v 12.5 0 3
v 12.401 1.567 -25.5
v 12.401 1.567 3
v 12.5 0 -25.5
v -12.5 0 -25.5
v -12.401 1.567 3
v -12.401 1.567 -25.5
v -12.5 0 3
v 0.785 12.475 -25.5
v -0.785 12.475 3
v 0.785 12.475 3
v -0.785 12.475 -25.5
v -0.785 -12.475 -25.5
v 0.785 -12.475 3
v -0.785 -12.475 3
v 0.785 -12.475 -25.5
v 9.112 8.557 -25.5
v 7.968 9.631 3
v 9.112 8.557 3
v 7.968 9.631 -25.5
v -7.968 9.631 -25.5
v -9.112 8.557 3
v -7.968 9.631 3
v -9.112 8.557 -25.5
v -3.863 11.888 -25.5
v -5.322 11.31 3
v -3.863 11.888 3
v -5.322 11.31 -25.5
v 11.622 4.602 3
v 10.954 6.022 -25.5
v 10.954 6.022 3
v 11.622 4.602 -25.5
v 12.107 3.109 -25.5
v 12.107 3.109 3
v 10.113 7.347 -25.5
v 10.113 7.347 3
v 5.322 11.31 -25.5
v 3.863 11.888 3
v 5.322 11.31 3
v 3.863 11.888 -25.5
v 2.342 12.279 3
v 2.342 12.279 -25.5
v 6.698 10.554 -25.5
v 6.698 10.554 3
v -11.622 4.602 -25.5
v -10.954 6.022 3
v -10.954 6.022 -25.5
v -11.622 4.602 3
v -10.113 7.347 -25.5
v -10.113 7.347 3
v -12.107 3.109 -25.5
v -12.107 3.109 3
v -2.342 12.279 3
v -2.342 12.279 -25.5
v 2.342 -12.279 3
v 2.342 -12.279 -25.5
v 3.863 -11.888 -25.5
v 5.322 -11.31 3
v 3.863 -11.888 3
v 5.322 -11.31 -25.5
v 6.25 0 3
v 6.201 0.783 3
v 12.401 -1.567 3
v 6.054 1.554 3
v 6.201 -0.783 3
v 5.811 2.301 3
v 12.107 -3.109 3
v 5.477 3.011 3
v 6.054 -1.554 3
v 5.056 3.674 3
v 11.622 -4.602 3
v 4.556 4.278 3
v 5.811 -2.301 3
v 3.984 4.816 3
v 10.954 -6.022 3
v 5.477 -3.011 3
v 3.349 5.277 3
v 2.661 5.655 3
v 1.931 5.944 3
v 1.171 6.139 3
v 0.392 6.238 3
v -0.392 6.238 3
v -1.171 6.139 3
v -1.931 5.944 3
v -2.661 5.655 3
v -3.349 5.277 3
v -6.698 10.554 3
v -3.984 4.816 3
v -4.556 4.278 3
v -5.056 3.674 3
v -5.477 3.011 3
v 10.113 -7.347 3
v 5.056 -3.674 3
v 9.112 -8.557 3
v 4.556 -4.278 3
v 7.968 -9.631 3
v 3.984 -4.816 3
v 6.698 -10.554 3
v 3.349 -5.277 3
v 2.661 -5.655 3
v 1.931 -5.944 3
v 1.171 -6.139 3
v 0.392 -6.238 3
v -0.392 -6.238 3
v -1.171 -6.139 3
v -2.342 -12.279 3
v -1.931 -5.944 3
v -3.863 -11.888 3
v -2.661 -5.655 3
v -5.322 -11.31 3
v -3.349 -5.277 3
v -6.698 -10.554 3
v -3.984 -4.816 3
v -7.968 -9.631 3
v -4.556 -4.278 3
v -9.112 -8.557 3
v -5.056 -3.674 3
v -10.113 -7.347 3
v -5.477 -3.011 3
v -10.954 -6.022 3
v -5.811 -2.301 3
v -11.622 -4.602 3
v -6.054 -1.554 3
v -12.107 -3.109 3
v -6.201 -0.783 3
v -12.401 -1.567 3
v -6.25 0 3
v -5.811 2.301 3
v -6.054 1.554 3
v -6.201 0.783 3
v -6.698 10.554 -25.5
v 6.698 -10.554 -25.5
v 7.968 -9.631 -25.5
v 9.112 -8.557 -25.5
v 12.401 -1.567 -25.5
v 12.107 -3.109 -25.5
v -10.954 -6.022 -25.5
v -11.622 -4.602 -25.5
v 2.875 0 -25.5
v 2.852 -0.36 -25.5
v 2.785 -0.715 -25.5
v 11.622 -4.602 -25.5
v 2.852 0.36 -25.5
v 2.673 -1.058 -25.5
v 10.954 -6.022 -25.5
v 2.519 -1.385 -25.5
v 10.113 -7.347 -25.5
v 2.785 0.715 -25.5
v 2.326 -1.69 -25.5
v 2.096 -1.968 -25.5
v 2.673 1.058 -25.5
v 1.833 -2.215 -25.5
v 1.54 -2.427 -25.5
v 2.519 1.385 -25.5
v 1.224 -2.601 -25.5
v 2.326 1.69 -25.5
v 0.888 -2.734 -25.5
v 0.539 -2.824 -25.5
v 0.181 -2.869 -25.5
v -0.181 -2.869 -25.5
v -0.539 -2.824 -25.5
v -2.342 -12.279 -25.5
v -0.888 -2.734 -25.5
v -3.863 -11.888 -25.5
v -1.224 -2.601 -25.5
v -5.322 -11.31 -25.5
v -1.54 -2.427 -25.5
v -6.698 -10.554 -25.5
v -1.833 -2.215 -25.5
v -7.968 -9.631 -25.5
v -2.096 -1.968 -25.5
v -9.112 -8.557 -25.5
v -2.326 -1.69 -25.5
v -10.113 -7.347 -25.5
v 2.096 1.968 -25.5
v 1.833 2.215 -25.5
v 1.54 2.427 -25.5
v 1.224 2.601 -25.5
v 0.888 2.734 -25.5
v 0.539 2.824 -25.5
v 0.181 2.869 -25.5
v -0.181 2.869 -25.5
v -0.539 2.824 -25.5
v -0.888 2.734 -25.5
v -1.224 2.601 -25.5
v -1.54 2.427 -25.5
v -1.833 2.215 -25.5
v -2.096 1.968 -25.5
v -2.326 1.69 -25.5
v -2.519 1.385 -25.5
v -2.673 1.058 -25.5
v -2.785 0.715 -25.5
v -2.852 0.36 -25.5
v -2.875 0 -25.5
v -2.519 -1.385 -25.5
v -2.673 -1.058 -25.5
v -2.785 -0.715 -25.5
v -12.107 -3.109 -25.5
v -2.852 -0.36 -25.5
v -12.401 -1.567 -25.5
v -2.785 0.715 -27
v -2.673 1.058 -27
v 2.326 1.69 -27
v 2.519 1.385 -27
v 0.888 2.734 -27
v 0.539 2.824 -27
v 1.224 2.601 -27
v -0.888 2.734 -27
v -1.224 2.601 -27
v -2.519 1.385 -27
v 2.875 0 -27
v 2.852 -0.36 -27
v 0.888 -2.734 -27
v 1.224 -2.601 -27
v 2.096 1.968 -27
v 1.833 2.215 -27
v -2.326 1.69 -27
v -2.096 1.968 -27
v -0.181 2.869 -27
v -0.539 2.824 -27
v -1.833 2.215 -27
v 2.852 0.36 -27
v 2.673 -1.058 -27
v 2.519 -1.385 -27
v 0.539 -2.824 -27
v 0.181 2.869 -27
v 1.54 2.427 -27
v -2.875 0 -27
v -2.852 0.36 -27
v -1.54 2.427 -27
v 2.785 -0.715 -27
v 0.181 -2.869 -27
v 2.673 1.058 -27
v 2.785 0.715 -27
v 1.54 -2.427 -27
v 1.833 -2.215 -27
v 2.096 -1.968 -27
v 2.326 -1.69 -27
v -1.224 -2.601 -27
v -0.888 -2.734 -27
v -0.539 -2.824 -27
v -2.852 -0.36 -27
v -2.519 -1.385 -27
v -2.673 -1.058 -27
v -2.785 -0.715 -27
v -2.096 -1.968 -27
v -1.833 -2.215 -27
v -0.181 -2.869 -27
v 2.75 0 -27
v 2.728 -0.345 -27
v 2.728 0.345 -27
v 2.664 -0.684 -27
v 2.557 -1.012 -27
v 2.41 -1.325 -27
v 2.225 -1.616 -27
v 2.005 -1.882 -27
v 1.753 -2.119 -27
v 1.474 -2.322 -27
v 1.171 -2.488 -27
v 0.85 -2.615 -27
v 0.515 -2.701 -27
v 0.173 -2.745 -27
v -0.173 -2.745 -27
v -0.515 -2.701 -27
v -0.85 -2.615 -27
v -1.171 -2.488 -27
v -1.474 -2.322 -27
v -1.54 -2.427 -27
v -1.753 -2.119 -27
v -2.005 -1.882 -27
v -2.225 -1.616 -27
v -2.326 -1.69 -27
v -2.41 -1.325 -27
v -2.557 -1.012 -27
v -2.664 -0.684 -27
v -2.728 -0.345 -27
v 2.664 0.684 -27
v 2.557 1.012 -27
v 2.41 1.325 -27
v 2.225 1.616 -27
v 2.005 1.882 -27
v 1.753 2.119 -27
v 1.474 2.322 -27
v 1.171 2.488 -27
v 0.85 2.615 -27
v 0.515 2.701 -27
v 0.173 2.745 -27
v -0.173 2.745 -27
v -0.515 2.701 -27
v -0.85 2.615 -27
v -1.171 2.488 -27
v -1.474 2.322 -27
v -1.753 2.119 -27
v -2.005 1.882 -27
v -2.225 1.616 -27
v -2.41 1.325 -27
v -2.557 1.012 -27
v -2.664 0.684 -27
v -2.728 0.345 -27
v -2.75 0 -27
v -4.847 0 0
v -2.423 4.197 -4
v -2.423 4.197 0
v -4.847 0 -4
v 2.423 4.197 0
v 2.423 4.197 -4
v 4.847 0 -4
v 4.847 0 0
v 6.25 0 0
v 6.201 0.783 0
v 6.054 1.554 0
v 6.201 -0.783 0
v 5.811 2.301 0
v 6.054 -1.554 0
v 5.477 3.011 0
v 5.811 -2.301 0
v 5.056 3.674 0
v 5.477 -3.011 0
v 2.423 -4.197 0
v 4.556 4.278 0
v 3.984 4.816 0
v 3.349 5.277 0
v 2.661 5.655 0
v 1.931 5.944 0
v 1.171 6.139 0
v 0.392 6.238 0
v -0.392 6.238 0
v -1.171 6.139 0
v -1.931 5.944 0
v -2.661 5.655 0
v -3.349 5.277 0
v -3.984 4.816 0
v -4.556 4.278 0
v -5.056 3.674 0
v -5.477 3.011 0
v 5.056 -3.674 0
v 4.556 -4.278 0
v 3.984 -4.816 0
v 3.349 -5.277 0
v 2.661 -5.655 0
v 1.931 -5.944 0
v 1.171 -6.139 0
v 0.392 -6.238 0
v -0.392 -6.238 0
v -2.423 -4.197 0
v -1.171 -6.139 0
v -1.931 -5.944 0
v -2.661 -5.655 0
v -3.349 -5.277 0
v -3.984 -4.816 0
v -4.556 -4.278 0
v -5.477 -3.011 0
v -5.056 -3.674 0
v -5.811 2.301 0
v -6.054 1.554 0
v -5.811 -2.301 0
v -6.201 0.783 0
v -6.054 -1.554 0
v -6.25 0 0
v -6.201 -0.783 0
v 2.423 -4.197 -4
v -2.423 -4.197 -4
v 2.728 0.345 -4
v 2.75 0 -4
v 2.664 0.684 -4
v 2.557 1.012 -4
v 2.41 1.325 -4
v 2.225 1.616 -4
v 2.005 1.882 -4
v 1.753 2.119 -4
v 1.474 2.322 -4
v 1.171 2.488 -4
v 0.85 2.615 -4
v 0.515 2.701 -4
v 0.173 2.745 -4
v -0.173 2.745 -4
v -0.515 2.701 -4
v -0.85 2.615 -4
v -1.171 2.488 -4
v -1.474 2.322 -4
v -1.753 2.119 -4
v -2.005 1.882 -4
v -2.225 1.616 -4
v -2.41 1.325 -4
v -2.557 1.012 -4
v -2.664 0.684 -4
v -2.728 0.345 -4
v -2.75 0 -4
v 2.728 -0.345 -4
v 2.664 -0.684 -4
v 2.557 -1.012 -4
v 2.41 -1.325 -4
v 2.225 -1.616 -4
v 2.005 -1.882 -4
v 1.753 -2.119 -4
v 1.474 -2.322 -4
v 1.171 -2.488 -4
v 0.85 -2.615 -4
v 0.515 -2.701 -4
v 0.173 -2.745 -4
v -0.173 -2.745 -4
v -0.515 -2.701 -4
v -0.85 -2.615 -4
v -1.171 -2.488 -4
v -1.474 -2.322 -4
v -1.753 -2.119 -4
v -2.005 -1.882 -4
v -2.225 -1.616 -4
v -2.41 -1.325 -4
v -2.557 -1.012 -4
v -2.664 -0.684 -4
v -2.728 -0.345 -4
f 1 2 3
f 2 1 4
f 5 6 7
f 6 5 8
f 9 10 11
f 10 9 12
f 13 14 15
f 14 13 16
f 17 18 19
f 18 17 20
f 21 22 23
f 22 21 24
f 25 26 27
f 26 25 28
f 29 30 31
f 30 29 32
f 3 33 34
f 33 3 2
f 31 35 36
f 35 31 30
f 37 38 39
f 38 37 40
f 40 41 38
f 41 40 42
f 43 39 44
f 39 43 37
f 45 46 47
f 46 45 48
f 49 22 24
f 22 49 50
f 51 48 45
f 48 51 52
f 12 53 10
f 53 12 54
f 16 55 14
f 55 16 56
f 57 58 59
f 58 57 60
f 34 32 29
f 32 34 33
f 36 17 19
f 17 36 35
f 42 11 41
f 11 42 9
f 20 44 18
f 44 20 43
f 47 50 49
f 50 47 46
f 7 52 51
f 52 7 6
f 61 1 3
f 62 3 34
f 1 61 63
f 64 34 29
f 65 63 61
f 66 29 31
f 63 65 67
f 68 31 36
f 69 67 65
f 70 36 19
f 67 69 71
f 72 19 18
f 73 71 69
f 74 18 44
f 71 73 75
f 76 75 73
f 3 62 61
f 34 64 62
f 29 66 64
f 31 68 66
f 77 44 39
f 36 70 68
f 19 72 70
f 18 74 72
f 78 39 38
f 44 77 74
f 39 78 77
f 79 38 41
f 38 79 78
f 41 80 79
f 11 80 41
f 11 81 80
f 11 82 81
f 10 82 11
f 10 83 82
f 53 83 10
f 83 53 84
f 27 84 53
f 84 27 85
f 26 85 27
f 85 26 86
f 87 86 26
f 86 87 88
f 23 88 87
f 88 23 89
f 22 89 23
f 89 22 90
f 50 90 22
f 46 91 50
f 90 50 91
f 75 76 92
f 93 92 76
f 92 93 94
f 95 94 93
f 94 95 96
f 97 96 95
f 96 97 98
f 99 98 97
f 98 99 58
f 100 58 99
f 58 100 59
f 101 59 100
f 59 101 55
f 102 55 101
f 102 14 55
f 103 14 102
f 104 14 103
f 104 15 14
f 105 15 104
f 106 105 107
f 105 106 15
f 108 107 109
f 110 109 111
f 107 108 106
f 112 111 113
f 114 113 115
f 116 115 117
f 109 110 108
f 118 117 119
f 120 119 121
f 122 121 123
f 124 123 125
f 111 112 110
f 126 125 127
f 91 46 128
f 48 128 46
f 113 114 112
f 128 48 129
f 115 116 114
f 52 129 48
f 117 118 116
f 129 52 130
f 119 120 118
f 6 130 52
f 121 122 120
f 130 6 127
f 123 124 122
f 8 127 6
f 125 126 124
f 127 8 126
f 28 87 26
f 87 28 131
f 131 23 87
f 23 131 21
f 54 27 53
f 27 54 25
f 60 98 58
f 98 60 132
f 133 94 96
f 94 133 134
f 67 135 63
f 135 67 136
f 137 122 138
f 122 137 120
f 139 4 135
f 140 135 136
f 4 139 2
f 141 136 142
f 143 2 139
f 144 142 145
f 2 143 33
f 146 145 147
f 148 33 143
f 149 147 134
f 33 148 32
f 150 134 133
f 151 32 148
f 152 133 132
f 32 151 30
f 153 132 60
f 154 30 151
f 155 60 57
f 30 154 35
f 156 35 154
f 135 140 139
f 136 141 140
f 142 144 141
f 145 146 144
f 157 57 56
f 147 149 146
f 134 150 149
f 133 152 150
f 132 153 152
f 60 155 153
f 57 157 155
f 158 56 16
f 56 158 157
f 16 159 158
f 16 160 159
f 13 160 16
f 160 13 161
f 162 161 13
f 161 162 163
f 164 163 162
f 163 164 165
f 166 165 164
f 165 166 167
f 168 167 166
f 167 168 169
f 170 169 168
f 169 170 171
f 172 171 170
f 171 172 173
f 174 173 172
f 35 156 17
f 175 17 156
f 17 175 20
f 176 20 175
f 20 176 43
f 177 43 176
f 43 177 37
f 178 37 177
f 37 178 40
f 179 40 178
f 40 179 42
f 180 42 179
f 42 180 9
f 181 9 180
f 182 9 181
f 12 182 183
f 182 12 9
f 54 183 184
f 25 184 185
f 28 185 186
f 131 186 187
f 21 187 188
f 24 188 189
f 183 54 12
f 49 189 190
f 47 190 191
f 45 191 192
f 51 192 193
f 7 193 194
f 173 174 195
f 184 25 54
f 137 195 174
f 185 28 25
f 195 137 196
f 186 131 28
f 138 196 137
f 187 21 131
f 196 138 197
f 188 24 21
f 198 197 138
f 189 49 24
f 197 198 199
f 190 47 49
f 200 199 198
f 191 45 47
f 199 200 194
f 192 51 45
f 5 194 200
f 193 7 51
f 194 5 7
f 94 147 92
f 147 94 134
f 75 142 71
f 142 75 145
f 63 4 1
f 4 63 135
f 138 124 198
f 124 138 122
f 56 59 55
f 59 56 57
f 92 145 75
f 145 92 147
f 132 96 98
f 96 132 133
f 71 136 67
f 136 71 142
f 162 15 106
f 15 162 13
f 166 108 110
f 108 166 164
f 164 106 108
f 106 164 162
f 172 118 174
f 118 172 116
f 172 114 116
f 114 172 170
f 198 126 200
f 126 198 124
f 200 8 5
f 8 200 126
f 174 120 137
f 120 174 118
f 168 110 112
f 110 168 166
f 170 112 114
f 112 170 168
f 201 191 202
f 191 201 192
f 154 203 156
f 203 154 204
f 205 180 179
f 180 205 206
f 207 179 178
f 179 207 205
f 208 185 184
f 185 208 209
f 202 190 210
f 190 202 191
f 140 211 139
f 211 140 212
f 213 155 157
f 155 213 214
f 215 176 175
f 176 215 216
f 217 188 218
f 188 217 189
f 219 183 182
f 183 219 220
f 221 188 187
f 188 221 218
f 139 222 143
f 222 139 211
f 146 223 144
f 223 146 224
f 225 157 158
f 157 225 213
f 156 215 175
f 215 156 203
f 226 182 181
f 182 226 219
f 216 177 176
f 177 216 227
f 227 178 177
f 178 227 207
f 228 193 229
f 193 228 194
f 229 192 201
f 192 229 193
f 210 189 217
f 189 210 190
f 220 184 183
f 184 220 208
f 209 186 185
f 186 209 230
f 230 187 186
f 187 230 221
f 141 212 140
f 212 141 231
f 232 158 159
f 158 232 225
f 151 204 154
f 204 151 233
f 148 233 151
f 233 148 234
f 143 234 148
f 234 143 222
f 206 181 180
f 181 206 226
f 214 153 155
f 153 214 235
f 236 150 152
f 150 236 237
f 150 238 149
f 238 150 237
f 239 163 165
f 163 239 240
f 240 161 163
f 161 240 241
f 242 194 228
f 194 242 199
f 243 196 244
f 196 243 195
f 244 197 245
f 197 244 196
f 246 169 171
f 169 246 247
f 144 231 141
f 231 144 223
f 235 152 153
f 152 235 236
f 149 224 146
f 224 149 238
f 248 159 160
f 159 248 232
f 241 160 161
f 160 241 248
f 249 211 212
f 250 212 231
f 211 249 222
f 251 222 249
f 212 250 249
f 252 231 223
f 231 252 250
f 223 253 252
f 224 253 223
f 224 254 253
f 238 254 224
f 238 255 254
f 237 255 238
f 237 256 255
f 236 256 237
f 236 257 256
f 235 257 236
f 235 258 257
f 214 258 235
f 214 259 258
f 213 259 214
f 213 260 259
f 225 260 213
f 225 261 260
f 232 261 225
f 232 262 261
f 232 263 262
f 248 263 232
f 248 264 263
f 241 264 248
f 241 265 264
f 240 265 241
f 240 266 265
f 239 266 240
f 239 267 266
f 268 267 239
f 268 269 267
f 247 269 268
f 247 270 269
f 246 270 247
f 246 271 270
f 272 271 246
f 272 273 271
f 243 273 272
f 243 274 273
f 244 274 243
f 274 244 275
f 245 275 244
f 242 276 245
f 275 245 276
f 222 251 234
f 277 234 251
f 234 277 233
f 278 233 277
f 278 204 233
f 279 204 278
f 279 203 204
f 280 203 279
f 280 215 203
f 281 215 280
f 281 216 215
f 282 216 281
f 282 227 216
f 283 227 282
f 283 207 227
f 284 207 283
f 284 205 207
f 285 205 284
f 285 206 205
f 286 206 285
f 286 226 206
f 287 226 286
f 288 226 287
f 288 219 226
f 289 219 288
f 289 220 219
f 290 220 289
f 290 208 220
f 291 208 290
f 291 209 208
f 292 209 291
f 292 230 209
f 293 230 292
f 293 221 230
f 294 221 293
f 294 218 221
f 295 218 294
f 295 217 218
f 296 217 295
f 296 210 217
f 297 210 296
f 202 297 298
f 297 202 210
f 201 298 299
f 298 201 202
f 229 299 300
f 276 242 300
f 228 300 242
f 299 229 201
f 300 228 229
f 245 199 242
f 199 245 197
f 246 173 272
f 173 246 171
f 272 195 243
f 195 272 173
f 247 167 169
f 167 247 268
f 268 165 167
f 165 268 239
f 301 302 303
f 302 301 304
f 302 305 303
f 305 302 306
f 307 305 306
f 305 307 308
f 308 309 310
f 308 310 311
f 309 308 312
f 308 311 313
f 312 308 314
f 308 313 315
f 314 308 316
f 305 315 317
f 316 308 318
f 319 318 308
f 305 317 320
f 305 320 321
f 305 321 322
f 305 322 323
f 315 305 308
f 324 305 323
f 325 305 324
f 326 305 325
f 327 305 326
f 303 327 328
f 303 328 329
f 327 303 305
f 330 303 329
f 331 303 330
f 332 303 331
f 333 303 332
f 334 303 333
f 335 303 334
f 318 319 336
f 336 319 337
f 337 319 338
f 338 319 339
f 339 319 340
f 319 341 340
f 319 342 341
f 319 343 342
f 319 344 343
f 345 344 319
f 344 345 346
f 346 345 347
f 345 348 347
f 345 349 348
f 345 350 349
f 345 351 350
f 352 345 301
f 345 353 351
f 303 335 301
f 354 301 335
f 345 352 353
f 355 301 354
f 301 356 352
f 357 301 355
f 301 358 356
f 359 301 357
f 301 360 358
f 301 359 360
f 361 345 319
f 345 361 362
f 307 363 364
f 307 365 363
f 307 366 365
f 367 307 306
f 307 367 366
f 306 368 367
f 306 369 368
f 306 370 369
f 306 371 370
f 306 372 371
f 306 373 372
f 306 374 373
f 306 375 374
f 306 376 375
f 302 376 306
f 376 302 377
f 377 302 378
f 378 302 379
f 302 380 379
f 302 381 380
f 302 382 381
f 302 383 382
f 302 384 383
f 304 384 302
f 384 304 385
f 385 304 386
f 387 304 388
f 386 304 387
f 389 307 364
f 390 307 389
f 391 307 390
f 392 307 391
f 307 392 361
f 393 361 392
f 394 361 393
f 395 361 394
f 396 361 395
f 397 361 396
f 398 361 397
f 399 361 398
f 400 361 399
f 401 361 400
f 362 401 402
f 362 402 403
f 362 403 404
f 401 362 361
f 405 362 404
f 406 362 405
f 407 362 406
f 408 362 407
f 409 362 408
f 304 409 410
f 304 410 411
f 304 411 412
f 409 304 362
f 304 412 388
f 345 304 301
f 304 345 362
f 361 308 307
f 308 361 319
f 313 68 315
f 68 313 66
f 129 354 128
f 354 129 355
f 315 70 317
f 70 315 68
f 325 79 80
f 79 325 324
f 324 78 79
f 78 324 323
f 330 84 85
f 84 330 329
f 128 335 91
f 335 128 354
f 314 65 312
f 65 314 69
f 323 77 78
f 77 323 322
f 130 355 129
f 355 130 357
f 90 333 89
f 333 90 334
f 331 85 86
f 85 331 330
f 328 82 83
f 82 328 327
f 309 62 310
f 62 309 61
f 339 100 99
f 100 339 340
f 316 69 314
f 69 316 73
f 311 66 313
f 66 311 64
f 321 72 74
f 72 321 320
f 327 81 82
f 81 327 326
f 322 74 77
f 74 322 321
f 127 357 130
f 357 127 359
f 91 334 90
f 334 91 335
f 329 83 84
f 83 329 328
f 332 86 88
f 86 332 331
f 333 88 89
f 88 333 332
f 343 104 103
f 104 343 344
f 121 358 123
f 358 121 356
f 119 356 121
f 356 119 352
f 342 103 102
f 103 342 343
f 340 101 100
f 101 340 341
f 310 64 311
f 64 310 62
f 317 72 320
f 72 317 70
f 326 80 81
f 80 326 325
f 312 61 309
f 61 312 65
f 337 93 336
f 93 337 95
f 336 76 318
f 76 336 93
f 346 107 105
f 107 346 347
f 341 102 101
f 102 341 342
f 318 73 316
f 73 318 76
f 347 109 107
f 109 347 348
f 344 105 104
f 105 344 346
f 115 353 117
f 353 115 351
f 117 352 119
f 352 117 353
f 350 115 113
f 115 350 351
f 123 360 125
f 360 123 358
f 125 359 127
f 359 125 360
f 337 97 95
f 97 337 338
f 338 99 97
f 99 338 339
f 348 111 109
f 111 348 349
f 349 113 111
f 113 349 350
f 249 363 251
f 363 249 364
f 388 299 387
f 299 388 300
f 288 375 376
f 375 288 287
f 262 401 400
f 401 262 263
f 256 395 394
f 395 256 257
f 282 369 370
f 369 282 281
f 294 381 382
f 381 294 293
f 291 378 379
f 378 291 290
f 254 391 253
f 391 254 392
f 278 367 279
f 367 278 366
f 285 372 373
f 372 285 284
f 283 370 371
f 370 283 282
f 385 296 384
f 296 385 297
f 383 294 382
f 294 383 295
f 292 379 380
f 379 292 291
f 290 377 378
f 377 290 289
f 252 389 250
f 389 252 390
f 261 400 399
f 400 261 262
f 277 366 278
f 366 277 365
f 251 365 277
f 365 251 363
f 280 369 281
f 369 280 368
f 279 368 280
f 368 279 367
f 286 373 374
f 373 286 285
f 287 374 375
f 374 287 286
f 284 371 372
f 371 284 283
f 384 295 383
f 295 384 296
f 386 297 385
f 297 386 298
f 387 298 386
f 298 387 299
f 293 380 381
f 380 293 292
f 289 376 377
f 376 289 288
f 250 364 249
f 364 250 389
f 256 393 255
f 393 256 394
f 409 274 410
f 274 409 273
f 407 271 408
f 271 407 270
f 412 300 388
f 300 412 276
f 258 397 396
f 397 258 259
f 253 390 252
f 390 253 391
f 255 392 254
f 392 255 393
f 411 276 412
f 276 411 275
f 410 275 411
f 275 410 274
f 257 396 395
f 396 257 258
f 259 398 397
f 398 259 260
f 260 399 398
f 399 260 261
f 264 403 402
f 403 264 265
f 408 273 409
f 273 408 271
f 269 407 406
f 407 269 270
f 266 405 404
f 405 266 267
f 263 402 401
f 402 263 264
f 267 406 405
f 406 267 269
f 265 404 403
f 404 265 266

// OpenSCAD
$fn = 50;


difference() {
	union() {
		translate(v = [0, 0, -25.5000000000]) {
			cylinder(h = 28.5000000000, r = 12.5000000000);
		}
		#translate(v = [0, 0, -27.0000000000]) {
			cylinder(h = 27, r = 2.8750000000);
		}
	}
	union() {
		translate(v = [0, 0, 0]) {
			rotate(a = [0, 0, 0]) {
				difference() {
					union() {
						translate(v = [0, 0, -4]) {
							linear_extrude(height = 4) {
								polygon(points = [[4.8468000000, 0.0000000000], [2.4234000000, 4.1974519271], [-2.4234000000, 4.1974519271], [-4.8468000000, 0.0000000000], [-2.4234000000, -4.1974519271], [2.4234000000, -4.1974519271]]);
							}
						}
					}
					union();
				}
			}
		}
		#cylinder(h = 3, r = 6.2500000000);
		#translate(v = [0, 0, -100.0000000000]) {
			cylinder(h = 200, r = 2.7500000000);
		}
	}
}
